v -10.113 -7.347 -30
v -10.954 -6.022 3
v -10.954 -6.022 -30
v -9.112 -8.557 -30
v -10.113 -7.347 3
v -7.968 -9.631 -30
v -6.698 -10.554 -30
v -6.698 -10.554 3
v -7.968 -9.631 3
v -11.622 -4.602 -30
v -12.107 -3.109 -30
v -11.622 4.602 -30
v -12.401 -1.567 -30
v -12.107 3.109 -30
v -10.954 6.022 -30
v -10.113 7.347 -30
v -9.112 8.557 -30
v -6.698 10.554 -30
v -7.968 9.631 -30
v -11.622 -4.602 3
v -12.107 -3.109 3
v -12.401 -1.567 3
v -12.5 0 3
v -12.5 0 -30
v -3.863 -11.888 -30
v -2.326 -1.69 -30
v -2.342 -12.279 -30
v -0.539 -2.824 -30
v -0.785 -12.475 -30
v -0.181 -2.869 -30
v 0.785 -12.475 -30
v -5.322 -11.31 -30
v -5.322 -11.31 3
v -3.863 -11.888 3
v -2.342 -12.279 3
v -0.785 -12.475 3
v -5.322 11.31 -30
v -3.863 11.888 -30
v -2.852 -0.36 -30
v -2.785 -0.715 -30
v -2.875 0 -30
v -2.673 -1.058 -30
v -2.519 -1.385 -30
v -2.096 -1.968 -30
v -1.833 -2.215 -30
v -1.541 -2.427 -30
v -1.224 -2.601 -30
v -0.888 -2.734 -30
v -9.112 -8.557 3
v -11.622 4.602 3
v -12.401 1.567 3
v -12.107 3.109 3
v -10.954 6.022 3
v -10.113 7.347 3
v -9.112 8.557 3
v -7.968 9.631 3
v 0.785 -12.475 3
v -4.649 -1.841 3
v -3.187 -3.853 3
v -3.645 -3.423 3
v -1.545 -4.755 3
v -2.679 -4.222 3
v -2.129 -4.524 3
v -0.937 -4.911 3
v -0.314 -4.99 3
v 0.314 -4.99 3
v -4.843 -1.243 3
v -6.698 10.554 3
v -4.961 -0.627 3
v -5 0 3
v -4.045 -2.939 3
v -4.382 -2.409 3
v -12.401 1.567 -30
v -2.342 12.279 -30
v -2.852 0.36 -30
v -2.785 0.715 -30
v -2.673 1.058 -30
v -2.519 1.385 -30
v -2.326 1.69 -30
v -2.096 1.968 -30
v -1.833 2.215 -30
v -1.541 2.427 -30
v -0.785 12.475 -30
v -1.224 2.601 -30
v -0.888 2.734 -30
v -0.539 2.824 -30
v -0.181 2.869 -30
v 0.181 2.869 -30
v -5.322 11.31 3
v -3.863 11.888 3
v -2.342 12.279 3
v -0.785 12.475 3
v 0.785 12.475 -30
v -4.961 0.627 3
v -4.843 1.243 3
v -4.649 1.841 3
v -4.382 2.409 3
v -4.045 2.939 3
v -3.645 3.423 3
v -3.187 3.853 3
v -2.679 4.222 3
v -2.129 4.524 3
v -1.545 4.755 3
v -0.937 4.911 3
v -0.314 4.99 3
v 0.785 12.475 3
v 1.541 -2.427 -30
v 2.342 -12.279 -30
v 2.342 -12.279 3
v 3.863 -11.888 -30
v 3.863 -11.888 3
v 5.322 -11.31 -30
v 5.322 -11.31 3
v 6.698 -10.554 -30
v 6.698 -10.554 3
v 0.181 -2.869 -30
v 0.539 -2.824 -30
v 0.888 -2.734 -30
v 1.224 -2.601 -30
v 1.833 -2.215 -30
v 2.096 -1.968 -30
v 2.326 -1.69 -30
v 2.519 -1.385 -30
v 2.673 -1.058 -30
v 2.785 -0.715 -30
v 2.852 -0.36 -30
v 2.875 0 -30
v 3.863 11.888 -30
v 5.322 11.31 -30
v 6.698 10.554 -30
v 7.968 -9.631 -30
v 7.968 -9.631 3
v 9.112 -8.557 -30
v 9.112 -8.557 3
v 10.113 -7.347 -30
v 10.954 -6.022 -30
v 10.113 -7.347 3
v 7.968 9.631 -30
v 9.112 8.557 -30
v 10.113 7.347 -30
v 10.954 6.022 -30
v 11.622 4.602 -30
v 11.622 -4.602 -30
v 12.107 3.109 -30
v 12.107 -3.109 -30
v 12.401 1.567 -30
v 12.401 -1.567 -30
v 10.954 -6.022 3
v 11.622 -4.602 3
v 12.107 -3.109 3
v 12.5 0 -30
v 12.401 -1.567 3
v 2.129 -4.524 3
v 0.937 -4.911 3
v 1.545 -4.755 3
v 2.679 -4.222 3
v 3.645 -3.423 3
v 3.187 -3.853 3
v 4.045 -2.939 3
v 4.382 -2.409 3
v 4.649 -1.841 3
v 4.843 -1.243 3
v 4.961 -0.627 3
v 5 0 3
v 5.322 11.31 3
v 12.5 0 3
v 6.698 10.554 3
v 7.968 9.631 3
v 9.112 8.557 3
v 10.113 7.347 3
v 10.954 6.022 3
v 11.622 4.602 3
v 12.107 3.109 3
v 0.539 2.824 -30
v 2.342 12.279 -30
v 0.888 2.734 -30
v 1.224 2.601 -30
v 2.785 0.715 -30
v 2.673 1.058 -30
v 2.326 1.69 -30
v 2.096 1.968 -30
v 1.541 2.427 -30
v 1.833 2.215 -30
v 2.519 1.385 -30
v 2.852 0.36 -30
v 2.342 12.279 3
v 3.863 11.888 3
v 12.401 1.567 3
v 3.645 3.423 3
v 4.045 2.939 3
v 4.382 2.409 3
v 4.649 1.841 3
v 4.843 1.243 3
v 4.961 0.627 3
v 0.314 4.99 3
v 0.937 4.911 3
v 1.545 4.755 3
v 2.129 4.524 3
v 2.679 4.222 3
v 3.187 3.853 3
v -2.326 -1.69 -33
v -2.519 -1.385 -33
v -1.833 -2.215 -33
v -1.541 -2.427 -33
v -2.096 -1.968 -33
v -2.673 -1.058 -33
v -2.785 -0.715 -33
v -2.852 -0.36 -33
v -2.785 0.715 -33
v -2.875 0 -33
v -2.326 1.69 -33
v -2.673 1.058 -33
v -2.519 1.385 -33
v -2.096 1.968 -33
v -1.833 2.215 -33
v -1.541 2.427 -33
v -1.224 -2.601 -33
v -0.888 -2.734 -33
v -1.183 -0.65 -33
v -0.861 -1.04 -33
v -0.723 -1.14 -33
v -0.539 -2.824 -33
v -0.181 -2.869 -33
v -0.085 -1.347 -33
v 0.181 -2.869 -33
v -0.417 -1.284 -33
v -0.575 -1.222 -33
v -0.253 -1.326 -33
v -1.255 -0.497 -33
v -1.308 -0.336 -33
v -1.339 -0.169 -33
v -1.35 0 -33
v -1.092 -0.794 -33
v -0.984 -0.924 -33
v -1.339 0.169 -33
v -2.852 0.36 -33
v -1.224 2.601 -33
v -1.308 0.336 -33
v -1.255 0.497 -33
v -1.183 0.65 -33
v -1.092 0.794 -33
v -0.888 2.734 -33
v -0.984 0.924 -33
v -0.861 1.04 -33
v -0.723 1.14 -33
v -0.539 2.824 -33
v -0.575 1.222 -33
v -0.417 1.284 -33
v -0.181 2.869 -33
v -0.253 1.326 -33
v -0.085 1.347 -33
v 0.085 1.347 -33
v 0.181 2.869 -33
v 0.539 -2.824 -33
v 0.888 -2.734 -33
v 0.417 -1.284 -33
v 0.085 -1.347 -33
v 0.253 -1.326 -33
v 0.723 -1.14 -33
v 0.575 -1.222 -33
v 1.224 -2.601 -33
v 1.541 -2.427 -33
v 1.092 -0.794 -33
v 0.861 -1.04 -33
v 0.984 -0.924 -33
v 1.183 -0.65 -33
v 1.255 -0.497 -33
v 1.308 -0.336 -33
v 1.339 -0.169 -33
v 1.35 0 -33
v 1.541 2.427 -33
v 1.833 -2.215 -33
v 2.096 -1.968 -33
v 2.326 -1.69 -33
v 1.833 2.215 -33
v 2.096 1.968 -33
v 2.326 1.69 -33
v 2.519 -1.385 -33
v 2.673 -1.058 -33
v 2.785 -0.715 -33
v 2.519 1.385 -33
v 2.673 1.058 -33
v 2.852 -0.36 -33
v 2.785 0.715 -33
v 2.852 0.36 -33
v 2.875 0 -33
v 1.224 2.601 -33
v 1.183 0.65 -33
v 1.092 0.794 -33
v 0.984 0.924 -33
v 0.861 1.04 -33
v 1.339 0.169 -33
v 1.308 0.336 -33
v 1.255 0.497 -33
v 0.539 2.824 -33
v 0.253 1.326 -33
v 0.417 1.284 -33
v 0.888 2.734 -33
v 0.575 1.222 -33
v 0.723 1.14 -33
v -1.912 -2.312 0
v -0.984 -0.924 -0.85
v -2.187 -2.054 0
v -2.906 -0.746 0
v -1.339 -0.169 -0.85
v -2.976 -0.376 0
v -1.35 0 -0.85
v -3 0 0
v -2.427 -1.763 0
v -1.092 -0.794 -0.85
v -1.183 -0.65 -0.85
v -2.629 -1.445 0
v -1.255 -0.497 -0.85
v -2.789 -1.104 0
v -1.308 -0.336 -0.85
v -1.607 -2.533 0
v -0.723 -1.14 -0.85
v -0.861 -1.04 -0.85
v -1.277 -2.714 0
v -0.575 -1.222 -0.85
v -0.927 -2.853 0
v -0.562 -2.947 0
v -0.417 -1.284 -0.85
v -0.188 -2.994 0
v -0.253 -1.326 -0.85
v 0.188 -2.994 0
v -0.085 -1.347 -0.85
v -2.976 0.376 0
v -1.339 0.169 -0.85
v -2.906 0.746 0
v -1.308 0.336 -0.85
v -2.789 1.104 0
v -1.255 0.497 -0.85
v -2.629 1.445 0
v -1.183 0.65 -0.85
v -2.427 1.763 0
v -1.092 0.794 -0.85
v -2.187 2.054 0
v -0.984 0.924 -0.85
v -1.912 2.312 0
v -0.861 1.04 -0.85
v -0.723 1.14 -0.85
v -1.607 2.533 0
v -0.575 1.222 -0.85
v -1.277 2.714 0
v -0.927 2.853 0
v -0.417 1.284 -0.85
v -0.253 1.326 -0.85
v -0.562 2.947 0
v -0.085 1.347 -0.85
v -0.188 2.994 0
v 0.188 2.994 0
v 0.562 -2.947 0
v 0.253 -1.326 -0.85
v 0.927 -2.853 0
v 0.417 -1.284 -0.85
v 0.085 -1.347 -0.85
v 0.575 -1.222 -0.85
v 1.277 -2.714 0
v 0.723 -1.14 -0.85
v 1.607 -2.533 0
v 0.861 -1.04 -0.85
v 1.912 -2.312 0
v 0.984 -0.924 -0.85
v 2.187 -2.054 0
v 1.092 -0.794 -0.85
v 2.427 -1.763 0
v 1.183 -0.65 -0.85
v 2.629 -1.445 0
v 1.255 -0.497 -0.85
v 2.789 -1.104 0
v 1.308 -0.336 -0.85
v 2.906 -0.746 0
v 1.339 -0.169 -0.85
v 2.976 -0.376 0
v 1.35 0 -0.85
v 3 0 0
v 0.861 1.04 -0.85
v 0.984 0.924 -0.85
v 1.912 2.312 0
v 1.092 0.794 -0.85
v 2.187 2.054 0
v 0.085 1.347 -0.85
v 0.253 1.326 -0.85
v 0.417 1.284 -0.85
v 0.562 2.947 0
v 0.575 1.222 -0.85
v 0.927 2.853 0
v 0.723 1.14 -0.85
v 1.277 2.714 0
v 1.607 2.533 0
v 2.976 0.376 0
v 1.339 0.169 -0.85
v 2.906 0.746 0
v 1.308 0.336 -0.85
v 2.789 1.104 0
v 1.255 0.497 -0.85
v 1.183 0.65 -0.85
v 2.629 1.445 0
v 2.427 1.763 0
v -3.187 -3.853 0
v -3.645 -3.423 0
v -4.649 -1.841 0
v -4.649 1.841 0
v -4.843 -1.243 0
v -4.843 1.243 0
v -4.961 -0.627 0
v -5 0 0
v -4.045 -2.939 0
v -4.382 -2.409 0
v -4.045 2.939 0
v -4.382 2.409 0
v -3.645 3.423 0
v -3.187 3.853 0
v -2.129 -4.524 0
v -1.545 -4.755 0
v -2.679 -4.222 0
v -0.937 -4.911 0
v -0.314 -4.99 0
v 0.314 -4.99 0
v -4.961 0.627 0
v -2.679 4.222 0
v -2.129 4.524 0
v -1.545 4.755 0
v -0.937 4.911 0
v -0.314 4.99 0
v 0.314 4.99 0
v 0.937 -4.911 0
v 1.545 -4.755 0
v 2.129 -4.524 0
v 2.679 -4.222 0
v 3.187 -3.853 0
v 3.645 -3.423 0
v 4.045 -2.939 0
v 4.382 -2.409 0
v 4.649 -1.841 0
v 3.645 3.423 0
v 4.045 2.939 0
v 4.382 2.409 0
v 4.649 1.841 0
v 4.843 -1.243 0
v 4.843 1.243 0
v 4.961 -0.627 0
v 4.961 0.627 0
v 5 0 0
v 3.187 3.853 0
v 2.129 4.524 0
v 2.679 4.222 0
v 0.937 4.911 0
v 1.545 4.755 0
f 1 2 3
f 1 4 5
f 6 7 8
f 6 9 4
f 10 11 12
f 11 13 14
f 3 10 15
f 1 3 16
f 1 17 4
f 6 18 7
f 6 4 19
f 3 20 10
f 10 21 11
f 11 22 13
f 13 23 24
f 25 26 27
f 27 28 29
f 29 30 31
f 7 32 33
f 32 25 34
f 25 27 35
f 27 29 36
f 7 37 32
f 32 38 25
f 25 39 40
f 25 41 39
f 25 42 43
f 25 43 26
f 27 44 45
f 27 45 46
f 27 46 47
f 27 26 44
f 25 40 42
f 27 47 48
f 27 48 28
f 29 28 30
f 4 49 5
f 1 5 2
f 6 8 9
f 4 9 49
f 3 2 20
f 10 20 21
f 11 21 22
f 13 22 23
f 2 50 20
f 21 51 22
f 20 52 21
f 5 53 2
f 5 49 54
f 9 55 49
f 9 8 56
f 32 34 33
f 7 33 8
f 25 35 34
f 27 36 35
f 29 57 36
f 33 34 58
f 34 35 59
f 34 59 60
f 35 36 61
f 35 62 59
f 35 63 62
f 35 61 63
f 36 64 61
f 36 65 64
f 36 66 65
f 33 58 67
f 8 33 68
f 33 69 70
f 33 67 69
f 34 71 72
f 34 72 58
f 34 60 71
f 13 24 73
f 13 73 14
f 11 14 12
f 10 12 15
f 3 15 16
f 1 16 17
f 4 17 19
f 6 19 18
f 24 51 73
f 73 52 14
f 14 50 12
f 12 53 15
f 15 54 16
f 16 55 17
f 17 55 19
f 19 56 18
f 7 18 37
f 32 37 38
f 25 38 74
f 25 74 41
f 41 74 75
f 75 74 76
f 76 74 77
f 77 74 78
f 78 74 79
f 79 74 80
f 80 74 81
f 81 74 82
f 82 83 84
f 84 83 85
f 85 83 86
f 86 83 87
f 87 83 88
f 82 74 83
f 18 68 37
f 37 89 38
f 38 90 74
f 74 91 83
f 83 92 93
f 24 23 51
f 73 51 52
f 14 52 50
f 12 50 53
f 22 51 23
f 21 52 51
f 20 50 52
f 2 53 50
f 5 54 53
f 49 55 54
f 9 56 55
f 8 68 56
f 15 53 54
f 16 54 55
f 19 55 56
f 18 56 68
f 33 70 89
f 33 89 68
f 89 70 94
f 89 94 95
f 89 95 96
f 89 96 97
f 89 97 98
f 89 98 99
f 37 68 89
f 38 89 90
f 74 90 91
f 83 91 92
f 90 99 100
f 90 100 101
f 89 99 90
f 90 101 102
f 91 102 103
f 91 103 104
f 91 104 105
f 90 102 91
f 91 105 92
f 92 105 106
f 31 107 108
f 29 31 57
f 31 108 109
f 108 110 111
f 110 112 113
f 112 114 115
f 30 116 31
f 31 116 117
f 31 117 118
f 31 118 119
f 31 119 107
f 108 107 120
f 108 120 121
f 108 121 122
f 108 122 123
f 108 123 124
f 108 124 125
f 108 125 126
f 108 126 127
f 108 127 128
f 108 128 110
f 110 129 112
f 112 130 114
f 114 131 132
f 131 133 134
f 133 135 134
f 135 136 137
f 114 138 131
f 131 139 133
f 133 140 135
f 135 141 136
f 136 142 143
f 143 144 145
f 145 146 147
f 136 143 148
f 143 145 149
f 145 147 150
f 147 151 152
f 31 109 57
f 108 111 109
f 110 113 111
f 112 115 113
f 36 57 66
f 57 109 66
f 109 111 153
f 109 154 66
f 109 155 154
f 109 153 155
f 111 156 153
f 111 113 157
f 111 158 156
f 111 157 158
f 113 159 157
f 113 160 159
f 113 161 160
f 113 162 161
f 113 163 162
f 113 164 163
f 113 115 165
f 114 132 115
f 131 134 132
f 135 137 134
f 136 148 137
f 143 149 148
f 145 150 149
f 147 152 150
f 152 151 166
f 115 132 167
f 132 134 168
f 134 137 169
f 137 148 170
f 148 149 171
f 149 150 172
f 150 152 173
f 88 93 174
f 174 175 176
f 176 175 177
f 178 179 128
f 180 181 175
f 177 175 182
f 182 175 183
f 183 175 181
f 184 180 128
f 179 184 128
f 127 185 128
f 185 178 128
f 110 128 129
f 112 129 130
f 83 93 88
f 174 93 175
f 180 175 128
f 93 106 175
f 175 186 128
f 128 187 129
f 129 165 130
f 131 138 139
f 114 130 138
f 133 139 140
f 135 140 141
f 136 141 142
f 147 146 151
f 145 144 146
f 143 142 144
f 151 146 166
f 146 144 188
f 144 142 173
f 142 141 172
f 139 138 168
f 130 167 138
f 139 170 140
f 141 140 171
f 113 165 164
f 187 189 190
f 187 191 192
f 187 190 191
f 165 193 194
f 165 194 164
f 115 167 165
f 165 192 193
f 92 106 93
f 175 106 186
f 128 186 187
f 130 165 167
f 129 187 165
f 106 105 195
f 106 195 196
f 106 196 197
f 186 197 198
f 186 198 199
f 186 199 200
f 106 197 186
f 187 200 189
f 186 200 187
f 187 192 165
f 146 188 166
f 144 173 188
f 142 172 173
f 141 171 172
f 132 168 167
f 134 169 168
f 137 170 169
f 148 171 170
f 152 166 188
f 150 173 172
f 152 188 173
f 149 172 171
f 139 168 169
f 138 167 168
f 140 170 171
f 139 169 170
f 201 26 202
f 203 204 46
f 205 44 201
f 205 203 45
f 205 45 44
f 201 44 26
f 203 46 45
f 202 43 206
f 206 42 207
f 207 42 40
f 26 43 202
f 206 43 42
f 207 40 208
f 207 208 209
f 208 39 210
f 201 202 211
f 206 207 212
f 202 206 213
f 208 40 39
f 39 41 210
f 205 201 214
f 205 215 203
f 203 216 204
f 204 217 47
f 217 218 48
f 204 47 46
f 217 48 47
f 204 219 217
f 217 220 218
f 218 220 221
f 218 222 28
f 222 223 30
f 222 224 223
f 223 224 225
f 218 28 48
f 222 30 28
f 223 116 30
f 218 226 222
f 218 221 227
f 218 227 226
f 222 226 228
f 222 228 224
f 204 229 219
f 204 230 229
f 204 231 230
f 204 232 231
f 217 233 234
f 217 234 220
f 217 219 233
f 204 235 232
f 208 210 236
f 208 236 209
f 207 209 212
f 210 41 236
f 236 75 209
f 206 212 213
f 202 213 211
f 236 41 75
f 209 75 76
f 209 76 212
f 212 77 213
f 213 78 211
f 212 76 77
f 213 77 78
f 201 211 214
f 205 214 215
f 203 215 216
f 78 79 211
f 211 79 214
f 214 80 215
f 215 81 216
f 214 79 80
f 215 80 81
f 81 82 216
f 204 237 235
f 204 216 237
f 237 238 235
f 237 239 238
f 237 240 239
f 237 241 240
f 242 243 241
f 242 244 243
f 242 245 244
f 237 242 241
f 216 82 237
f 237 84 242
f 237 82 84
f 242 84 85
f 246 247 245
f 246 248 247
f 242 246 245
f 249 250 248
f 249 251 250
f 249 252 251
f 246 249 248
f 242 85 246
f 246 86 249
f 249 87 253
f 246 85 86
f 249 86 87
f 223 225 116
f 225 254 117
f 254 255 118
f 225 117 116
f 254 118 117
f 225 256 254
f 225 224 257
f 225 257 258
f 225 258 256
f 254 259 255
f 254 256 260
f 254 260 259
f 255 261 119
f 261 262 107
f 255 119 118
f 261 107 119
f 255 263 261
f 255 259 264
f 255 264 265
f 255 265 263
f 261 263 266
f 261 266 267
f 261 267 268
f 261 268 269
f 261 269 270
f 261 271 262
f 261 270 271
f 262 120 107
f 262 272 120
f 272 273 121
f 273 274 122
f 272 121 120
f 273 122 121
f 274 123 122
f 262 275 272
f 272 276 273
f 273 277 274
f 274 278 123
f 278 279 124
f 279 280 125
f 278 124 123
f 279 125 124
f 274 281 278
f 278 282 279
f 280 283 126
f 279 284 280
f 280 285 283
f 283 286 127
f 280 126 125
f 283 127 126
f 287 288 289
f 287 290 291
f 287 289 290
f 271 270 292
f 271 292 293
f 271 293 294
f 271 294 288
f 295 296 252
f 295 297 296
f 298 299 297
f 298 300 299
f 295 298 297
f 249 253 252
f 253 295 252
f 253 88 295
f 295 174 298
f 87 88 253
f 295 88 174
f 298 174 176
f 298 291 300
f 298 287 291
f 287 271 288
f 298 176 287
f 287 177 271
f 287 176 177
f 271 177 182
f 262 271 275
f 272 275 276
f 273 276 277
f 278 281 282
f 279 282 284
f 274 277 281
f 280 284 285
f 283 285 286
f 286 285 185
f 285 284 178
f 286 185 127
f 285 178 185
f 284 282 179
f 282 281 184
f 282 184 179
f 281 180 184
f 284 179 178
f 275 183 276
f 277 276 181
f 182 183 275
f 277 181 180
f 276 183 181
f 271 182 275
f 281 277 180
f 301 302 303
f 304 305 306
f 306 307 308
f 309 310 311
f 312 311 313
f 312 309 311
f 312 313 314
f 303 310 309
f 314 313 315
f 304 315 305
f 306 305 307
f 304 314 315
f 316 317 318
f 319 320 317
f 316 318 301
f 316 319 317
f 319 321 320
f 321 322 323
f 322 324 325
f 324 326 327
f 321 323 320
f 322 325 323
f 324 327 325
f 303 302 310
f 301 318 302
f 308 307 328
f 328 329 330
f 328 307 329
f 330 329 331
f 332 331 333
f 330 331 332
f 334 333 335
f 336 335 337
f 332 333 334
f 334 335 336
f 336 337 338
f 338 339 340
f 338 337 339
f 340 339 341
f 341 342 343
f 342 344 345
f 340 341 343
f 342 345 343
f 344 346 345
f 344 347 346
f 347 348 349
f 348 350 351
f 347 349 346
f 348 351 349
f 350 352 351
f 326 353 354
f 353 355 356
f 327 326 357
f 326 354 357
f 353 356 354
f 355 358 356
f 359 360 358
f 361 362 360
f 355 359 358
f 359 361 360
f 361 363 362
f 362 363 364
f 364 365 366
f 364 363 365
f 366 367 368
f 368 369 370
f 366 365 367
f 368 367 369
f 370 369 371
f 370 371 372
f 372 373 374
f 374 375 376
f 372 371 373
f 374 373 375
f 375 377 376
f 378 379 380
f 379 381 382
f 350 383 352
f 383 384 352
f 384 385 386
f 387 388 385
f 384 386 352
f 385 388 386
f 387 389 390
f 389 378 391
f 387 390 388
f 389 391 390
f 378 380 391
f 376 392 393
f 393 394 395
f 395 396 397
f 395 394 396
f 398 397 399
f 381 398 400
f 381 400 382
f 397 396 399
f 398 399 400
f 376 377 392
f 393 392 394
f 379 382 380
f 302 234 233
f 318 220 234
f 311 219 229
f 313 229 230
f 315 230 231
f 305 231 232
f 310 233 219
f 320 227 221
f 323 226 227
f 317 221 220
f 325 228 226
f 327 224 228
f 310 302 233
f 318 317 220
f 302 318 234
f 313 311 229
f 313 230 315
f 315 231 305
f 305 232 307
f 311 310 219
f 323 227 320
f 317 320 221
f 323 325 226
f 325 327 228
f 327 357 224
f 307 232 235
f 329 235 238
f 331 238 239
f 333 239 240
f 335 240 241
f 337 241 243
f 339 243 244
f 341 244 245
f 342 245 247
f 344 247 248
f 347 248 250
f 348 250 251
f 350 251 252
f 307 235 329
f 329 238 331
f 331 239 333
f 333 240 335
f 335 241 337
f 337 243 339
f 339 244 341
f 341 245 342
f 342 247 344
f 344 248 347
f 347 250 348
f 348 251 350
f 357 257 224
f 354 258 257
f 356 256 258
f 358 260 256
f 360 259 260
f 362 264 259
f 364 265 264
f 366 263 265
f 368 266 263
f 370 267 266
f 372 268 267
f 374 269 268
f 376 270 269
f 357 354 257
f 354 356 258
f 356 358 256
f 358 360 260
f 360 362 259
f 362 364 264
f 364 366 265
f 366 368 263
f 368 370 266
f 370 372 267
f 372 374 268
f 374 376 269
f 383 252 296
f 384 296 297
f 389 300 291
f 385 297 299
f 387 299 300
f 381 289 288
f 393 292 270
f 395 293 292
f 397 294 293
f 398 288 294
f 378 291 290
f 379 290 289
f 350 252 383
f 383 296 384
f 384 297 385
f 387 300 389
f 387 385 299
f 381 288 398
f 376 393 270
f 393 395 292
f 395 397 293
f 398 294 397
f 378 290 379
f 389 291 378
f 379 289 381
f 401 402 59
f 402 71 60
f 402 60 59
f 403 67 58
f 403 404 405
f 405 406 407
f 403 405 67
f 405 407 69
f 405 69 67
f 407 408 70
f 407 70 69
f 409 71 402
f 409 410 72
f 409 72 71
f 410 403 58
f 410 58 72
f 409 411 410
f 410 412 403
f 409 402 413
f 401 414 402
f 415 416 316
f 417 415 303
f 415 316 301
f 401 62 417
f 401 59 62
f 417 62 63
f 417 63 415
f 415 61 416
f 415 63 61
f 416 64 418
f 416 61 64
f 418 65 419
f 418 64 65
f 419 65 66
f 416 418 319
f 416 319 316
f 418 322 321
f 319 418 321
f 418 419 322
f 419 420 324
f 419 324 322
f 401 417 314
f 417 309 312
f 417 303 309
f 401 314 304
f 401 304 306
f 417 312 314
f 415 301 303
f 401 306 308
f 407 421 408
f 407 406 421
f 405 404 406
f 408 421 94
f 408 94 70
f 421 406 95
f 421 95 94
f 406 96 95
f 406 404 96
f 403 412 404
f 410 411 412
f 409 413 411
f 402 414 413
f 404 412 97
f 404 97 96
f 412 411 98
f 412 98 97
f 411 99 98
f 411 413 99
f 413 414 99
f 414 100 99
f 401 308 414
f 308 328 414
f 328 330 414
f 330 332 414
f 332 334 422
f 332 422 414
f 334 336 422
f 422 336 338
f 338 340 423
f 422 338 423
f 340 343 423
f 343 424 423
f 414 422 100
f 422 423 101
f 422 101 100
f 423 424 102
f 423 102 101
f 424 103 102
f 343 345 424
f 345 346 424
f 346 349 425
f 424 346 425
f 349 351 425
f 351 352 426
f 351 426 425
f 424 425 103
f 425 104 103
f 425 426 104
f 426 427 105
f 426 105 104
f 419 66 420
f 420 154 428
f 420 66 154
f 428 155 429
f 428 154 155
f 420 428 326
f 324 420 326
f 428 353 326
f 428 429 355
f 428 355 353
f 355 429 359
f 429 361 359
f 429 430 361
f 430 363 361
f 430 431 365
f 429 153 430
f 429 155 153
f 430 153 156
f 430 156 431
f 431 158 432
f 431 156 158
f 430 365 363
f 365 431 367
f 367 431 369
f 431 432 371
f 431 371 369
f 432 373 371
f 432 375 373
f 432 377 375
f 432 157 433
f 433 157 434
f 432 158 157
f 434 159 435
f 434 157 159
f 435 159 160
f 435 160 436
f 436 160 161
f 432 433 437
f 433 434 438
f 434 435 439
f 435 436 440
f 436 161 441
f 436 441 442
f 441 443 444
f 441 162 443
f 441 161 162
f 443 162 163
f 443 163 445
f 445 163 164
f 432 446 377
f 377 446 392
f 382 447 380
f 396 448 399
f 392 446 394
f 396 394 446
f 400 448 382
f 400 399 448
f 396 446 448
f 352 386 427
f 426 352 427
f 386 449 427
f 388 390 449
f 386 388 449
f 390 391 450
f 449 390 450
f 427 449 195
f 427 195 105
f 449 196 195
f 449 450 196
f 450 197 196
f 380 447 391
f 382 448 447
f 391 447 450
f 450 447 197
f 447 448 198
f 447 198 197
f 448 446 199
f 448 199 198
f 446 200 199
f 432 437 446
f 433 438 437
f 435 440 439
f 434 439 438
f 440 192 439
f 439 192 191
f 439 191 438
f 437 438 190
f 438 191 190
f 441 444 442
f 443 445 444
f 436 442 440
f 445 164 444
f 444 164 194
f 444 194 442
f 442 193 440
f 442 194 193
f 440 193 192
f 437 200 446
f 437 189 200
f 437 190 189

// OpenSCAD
$fn = 50;

difference() {
	union() {
		translate(v = [0, 0, -30.0]) {
			cylinder(h = 33, r = 12.5);
		}
		#translate(v = [0, 0, -33.0]) {
			cylinder(h = 33, r = 2.875);
		}
	}
	union() {
		translate(v = [0, 0, 0]) {
			rotate(a = [0, 0, 0]) {
				difference() {
					union() {
						translate(v = [0, 0, -33.0]) {
							cylinder(h = 33, r = 1.0);
						}
						translate(v = [0, 0, -0.85]) {
							cylinder(h = 0.85, r1 = 1.35, r2 = 3.0);
						}
						translate(v = [0, 0, -33.0]) {
							cylinder(h = 33, r = 1.35);
						}
						translate(v = [0, 0, -33.0]) {
							cylinder(h = 33, r = 1.0);
						}
					}
					union();
				}
			}
		}
		#cylinder(h = 3, r = 5.0);
	}
}
